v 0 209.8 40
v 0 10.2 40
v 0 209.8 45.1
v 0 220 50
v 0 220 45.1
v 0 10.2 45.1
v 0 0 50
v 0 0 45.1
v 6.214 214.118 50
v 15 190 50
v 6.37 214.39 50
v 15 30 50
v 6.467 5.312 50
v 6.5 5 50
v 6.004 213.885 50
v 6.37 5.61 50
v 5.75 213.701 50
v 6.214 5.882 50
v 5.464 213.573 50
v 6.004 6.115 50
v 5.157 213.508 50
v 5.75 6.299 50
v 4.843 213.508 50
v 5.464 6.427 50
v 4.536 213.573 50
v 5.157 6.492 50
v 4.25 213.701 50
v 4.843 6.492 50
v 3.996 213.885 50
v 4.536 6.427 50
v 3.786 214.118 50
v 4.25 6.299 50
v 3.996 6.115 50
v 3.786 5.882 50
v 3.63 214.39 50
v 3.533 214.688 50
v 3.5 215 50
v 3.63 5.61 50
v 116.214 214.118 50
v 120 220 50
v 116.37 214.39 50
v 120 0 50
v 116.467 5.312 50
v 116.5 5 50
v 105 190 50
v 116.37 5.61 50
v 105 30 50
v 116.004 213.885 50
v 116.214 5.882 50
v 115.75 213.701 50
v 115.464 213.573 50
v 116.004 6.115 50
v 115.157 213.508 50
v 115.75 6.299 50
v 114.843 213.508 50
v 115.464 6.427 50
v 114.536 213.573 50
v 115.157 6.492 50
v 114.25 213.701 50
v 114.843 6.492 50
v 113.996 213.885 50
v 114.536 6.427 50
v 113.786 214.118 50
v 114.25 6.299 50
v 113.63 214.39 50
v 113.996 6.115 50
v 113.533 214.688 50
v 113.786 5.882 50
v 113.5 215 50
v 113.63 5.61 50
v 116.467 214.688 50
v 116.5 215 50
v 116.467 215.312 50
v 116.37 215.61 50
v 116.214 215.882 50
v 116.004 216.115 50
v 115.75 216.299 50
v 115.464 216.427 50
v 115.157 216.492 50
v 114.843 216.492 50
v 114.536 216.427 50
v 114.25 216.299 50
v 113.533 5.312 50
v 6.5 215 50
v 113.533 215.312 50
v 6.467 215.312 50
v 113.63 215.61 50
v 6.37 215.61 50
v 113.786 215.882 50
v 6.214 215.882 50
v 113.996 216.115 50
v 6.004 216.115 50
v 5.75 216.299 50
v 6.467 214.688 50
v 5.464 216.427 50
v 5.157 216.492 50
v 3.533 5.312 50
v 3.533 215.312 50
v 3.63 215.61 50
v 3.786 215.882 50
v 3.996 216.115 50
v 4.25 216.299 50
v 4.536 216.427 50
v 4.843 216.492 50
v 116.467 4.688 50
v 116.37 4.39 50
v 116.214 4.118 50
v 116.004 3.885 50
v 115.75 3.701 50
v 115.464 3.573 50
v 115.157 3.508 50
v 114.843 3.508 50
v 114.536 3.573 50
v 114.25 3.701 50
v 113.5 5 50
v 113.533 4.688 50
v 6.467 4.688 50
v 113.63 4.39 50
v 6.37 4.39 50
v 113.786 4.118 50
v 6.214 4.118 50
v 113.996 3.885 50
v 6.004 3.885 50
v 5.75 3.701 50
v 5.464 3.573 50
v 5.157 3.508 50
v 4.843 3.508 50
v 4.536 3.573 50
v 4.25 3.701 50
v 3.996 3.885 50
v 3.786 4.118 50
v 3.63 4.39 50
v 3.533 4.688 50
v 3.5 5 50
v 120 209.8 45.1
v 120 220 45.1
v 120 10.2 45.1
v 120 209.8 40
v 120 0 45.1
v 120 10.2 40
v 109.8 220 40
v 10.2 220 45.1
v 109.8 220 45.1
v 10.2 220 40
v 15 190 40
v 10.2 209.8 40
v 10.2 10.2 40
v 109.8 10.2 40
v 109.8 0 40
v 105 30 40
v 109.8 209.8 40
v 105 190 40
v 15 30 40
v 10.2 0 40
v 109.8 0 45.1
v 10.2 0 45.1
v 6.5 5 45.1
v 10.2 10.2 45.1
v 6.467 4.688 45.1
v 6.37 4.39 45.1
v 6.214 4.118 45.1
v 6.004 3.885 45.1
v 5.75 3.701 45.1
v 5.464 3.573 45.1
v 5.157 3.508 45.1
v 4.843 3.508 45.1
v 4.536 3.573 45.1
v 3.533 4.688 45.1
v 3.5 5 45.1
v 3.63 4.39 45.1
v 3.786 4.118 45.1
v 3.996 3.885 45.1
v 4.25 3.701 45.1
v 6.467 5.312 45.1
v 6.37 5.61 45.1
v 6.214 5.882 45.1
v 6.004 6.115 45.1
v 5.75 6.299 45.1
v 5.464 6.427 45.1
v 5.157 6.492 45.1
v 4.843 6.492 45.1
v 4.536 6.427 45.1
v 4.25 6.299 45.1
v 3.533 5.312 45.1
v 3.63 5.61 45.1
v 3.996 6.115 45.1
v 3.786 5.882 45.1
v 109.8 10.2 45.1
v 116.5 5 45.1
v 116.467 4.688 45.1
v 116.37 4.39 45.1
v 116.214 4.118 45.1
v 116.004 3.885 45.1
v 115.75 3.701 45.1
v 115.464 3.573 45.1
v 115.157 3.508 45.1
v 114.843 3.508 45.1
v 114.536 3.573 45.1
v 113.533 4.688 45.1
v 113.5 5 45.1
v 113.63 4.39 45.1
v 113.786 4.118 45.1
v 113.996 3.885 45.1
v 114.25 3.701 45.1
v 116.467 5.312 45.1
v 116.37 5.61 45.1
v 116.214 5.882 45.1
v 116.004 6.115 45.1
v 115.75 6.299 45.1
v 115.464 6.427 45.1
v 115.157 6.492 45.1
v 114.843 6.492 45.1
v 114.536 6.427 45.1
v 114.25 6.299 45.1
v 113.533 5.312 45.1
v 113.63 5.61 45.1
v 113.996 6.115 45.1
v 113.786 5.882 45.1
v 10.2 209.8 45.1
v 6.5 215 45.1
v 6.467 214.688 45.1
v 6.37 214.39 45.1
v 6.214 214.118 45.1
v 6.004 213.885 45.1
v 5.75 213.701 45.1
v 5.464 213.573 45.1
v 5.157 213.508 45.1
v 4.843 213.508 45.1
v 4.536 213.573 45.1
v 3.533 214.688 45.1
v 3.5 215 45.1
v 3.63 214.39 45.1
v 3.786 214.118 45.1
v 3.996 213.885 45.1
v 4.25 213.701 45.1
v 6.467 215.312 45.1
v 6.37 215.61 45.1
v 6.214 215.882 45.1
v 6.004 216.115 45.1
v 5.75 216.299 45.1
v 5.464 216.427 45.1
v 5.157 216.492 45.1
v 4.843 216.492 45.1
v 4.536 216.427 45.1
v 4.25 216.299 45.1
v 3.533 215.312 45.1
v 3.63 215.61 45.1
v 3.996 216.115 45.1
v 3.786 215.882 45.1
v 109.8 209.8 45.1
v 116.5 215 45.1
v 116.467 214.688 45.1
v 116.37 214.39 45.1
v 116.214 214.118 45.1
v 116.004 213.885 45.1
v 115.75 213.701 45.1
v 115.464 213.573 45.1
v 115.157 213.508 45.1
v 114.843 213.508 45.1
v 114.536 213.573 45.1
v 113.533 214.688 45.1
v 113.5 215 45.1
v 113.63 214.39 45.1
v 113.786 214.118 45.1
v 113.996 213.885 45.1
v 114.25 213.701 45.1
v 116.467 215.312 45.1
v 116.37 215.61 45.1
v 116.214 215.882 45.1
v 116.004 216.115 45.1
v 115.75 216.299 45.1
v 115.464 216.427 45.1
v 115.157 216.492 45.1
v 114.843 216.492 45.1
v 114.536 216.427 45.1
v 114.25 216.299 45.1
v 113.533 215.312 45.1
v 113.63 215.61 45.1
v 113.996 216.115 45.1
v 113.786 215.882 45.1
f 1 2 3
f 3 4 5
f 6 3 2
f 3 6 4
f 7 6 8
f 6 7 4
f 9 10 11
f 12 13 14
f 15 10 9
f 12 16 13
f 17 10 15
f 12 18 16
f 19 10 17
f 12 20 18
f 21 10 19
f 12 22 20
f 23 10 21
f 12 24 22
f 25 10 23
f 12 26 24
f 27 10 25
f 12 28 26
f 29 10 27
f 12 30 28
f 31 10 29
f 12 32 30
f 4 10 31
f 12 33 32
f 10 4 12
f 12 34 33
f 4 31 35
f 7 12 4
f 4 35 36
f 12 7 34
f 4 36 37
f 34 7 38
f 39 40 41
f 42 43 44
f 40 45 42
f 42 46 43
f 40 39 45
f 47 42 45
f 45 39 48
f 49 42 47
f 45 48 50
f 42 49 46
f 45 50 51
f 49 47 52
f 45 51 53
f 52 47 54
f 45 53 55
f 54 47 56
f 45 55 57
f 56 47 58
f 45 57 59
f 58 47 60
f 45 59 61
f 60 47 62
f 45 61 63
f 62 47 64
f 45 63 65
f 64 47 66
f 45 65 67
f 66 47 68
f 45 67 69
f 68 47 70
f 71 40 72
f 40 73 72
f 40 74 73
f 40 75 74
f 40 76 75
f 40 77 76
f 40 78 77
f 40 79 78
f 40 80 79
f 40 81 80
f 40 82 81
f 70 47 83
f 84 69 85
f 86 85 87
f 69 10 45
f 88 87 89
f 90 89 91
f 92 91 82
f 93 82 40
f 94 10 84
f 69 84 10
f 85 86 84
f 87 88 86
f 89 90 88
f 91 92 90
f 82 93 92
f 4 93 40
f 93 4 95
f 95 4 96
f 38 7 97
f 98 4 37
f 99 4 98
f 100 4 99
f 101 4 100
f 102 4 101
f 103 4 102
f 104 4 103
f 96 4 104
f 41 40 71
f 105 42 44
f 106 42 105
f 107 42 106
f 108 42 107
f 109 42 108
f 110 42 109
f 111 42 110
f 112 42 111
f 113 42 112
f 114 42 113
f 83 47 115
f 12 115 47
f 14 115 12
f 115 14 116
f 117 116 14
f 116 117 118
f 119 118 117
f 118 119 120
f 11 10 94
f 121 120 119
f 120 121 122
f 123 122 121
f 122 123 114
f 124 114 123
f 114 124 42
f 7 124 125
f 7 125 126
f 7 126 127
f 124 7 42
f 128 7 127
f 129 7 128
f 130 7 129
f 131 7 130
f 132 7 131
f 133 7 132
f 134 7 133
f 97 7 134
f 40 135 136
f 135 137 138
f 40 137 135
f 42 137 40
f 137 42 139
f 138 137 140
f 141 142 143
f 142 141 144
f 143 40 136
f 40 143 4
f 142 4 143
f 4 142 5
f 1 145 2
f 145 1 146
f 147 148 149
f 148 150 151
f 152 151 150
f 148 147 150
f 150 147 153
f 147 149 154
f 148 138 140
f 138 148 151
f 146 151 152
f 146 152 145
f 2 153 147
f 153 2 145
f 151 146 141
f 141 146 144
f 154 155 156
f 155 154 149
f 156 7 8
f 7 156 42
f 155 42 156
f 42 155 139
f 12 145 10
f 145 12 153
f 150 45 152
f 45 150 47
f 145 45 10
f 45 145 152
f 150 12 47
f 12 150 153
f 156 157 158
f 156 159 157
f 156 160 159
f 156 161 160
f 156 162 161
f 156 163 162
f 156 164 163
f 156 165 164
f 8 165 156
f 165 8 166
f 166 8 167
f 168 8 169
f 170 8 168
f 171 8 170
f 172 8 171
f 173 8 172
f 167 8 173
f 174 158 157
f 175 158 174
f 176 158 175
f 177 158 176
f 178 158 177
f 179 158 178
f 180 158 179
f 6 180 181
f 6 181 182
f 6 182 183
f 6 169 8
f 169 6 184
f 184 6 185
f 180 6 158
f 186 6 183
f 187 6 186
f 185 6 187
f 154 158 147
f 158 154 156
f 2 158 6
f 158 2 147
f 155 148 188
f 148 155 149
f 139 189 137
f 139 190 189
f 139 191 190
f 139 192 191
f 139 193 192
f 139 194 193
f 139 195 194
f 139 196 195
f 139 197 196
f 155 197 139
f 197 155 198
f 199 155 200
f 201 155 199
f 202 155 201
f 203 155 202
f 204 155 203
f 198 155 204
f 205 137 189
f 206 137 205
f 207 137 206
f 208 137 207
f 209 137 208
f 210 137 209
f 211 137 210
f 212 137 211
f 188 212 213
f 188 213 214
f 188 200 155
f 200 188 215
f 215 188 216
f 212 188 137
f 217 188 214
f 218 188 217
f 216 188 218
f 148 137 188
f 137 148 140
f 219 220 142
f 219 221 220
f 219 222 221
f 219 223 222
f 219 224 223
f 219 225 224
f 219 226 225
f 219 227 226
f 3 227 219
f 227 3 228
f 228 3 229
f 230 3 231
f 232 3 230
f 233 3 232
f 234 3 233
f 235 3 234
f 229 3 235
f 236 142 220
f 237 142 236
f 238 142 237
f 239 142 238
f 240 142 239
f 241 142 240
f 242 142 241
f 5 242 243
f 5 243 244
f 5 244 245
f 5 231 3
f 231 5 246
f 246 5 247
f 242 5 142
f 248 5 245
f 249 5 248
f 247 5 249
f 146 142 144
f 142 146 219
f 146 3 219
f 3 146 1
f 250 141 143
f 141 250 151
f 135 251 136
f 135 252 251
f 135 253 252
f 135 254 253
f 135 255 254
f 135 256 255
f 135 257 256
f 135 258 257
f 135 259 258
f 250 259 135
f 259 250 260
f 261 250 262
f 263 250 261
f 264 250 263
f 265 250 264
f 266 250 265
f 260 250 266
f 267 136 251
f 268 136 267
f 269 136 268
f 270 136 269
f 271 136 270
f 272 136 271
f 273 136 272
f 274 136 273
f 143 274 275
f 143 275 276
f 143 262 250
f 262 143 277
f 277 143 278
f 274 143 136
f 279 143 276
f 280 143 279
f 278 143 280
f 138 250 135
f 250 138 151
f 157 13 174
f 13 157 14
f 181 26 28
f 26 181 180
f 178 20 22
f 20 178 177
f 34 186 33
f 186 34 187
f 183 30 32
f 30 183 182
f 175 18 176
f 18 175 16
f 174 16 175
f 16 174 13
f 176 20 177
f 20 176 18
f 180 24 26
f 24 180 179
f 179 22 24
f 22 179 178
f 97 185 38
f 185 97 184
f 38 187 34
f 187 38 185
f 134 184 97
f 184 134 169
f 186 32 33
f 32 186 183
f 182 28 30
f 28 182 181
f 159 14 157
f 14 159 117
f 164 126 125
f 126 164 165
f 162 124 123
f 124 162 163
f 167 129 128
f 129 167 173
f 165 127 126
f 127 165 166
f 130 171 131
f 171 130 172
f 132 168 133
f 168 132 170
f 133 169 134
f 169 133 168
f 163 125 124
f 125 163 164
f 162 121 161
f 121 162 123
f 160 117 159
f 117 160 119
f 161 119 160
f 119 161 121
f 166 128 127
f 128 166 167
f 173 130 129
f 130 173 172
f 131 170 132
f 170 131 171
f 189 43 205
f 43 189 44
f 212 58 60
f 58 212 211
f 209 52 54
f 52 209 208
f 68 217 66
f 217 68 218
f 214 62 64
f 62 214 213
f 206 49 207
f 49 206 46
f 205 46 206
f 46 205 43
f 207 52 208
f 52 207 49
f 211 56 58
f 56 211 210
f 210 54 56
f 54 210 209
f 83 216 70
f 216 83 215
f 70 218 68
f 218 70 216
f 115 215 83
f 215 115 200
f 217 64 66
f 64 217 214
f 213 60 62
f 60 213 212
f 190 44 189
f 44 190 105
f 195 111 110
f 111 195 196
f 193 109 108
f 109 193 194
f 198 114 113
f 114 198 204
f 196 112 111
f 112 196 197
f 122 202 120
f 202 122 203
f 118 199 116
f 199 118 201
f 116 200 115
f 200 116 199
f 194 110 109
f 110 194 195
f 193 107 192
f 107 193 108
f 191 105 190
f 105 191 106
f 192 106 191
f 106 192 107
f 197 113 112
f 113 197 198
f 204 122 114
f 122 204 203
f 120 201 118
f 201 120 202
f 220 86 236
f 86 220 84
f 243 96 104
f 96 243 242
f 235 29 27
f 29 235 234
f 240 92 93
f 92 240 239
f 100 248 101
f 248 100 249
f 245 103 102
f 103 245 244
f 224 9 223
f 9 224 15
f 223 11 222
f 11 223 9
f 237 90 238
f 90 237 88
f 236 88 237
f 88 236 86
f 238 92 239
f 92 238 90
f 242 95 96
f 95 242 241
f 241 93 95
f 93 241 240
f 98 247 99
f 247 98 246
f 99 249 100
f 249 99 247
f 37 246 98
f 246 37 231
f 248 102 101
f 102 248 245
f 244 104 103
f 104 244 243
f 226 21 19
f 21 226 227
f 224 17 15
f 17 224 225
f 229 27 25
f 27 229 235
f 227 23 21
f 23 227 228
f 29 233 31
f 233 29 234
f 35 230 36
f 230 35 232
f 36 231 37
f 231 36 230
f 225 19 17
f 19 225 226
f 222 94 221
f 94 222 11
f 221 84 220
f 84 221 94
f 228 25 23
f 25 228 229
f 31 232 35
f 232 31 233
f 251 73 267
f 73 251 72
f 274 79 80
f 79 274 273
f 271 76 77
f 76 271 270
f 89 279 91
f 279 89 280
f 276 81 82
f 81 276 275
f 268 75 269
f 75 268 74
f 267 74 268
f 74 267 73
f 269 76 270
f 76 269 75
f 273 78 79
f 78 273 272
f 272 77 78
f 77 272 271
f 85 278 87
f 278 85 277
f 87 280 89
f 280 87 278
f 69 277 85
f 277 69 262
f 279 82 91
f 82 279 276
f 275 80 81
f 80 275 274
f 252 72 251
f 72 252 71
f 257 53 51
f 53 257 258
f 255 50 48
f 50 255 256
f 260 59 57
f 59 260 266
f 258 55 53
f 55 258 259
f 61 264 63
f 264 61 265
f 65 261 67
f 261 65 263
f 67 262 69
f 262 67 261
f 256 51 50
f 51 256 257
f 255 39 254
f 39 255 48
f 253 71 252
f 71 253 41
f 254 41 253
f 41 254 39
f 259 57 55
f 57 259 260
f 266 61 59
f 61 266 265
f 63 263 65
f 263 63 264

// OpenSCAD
// Title: Robot Assembly (Chassis + 4 Wheels + 1cm Platform)
// Description: Parametric chassis with 4 wheels and a thick top platform that fits over the posts.
// Modified by: AI Assistant

/*
 * =====================================================================
 * 1. GLOBAL PARAMETERS
 * =====================================================================
 */

// --- Chassis Dimensions ---
chassis_length = 220;  // [mm] Y-axis
chassis_width = 120;   // [mm] X-axis
chassis_height = 40;   // [mm] Z-axis
wall_thickness = 3;    // [mm]

// --- Servo Cutouts ---
servo_cutout_width = 24;
servo_cutout_height = 12;
servo_hole_distance = 28;
servo_hole_diameter = 1.5;
servo_pos_from_front = 50; 

// --- Rear Axle Holes ---
rear_hole_diameter = 6;
rear_hole_pos_from_back = 40;

// --- Vertical Positioning ---
cutouts_z_pos = 20; 

// --- Chassis Posts ---
post_size = 10;
post_height = 5;

// --- Platform Parameters (NEW) ---
platform_height = 10;      // Total height 1cm
platform_hole_width = 90;  // 7 cm window
platform_hole_length = 160; // 9 cm window
platform_screw_hole_d = 3; // Screw size
fit_tolerance = 0.4;       // Extra gap to ensure platform fits over posts

// --- Wheel Parameters ---
wheel_diameter = 60;
wheel_thickness = 5;
wheel_offset = 2; 

// --- Tread Parameters ---
tread_grooves = 40;
tread_groove_depth = 1.5;
tread_groove_width = 4;

// --- Wheel Mounting Parameters ---
mount_hole_distance = 32;
mount_hole_diameter = 1.5;
servo_horn_recess_depth = 2.5;
servo_spline_hole_diameter = 6;
servo_horn_hub_diameter = 7;
servo_horn_arm_width = 6;

// --- Quality ---
$fn = 30;

/*
 * =====================================================================
 * 2. MODULE: CHASSIS
 * =====================================================================
 */
module make_chassis() {
    
    // Sub-module for body
    module chassis_body_shape() {
        difference() {
            cube([chassis_width, chassis_length, chassis_height]);
            translate([wall_thickness, wall_thickness, wall_thickness]) {
                cube([
                    chassis_width - 2 * wall_thickness, 
                    chassis_length - 2 * wall_thickness, 
                    chassis_height
                ]);
            }
        }
    }

    // Sub-module for posts
    module mounting_posts() {
        translate([0, 0, chassis_height])
            cube([post_size, post_size, post_height]);
        translate([chassis_width - post_size, 0, chassis_height])
            cube([post_size, post_size, post_height]);
        translate([0, chassis_length - post_size, chassis_height])
            cube([post_size, post_size, post_height]);
        translate([chassis_width - post_size, chassis_length - post_size, chassis_height])
            cube([post_size, post_size, post_height]);
    }

    difference() {
        union() {
            chassis_body_shape();
            mounting_posts();
        }
        
        y_center_servo = chassis_length - servo_pos_from_front;
        z_center = cutouts_z_pos;
        
        // --- Left Servo ---
        translate([-1, y_center_servo - servo_cutout_width/2, z_center - servo_cutout_height/2])
            cube([wall_thickness + 2, servo_cutout_width, servo_cutout_height]);
        translate([wall_thickness/2, y_center_servo - servo_hole_distance/2, z_center])
            rotate([0, 90, 0]) cylinder(d=servo_hole_diameter, h=wall_thickness*3, center=true);
        translate([wall_thickness/2, y_center_servo + servo_hole_distance/2, z_center])
            rotate([0, 90, 0]) cylinder(d=servo_hole_diameter, h=wall_thickness*3, center=true);
        
        // --- Right Servo ---
        translate([chassis_width - wall_thickness, y_center_servo - servo_cutout_width/2, z_center - servo_cutout_height/2])
            cube([wall_thickness + 2, servo_cutout_width, servo_cutout_height]);
        translate([chassis_width - wall_thickness/2, y_center_servo - servo_hole_distance/2, z_center])
            rotate([0, 90, 0]) cylinder(d=servo_hole_diameter, h=wall_thickness*3, center=true);
        translate([chassis_width - wall_thickness/2, y_center_servo + servo_hole_distance/2, z_center])
            rotate([0, 90, 0]) cylinder(d=servo_hole_diameter, h=wall_thickness*3, center=true);
        
        // --- Rear Axles ---
        translate([-1, rear_hole_pos_from_back, cutouts_z_pos])
            rotate([0, 90, 0]) cylinder(d = rear_hole_diameter, h = wall_thickness + 2);
        translate([chassis_width - wall_thickness, rear_hole_pos_from_back, cutouts_z_pos])
            rotate([0, 90, 0]) cylinder(d = rear_hole_diameter, h = wall_thickness + 2);
    }
}

/*
 * =====================================================================
 * 3. MODULE: WHEEL
 * =====================================================================
 */
module make_wheel() {
    
    module wheel_base() {
        cylinder(d = wheel_diameter, h = wheel_thickness);
    }

    module tread_cutter() {
        if (tread_grooves > 0) {
            for (i = [0 : 360/tread_grooves : 359]) {
                rotate([0, 0, i]) {
                    translate([wheel_diameter/2 - tread_groove_depth, -tread_groove_width/2, -1]) {
                        cube([tread_groove_depth + 1, tread_groove_width, wheel_thickness + 2]);
                    }
                }
            }
        }
    }

    module servo_horn_cutout() {
        cutter_h = servo_horn_recess_depth + 1;
        translate([0, 0, wheel_thickness - servo_horn_recess_depth]) {
            hull() {
                cylinder(d = servo_horn_hub_diameter, h = cutter_h);
                translate([mount_hole_distance / 2, 0, 0])
                    cylinder(d = servo_horn_arm_width, h = cutter_h);
                translate([-mount_hole_distance / 2, 0, 0])
                    cylinder(d = servo_horn_arm_width, h = cutter_h);
            }
        }
    }

    module all_holes() {
        hole_h = wheel_thickness + 2;
        translate([0, 0, wheel_thickness / 2]) {
            cylinder(d = servo_spline_hole_diameter, h = hole_h, center = true);
            translate([mount_hole_distance / 2, 0, 0])
                cylinder(d = mount_hole_diameter, h = hole_h, center = true);
            translate([-mount_hole_distance / 2, 0, 0])
                cylinder(d = mount_hole_diameter, h = hole_h, center = true);
        }
    }

    difference() {
        wheel_base();
        tread_cutter();
        servo_horn_cutout();
        all_holes();
    }
}

/*
 * =====================================================================
 * 4. MODULE: 1cm PLATFORM (UPDATED)
 * =====================================================================
 */
module make_platform() {
    difference() {
        // 1. The main block (10mm high)
        cube([chassis_width, chassis_length, platform_height]);
        
        // 2. The Big Window (7x9 cm), Centered
        translate([chassis_width/2, chassis_length/2, -1])
            cube([platform_hole_width, platform_hole_length, platform_height + 25], center=true);
            
        // 3. Corner Pockets (Underside)
        // These cutouts allow the chassis posts to slide *inside* the platform
        // We add a small tolerance so it fits easily.
        pocket_s = post_size + fit_tolerance;
        pocket_h = post_height + 0.2; // slightly deeper to ensure flush fit
        
        // Front Left Pocket
        translate([-fit_tolerance/2, -fit_tolerance/2, -0.1])
            cube([pocket_s, pocket_s, pocket_h]);
            
        // Front Right Pocket
        translate([chassis_width - post_size - fit_tolerance/2, -fit_tolerance/2, -0.1])
            cube([pocket_s, pocket_s, pocket_h]);
            
        // Rear Left Pocket
        translate([-fit_tolerance/2, chassis_length - post_size - fit_tolerance/2, -0.1])
            cube([pocket_s, pocket_s, pocket_h]);
            
        // Rear Right Pocket
        translate([chassis_width - post_size - fit_tolerance/2, chassis_length - post_size - fit_tolerance/2, -0.1])
            cube([pocket_s, pocket_s, pocket_h]);

        // 4. Screw holes (Through the corners)
        hole_z_height = platform_height + 2;
        center_offset = post_size / 2;

        translate([center_offset, center_offset, platform_height/2])
            cylinder(d=platform_screw_hole_d, h=hole_z_height, center=true);
            
        translate([chassis_width - center_offset, center_offset, platform_height/2])
            cylinder(d=platform_screw_hole_d, h=hole_z_height, center=true);
            
        translate([center_offset, chassis_length - center_offset, platform_height/2])
            cylinder(d=platform_screw_hole_d, h=hole_z_height, center=true);
            
        translate([chassis_width - center_offset, chassis_length - center_offset, platform_height/2])
            cylinder(d=platform_screw_hole_d, h=hole_z_height, center=true);
    }
}

/*
 * =====================================================================
 * 5. ASSEMBLY
 * =====================================================================
 */

// 1. Render the Chassis
color("yellow") 
    make_chassis();

// 2. Render the Platform
// Placed at Chassis Height (40mm). 
// The pockets on the bottom of the platform will "swallow" the posts (which stick up to 45mm).
!color("Cyan")
    translate([0, 0, chassis_height]) 
    make_platform();


// --- Wheels Visuals ---

// Calculated Y coordinates for wheels
y_front = chassis_length - servo_pos_from_front;
y_rear = rear_hole_pos_from_back;

// Calculated X coordinates for wheels (2mm gap)
x_left_wheel = 0 - wheel_offset - wheel_thickness; 
x_right_wheel = chassis_width + wheel_offset + wheel_thickness; 

// Front Left
*translate([x_left_wheel, y_front, cutouts_z_pos])
    rotate([0, 90, 0]) 
    color("White") make_wheel();

// Front Right
*translate([x_right_wheel, y_front, cutouts_z_pos])
    rotate([0, -90, 0]) 
    color("White") make_wheel();

// Rear Left
*translate([x_left_wheel, y_rear, cutouts_z_pos])
    rotate([0, 90, 0])
    color("White") make_wheel();

// Rear Right
*translate([x_right_wheel, y_rear, cutouts_z_pos])
    rotate([0, -90, 0])
    color("White") make_wheel();
